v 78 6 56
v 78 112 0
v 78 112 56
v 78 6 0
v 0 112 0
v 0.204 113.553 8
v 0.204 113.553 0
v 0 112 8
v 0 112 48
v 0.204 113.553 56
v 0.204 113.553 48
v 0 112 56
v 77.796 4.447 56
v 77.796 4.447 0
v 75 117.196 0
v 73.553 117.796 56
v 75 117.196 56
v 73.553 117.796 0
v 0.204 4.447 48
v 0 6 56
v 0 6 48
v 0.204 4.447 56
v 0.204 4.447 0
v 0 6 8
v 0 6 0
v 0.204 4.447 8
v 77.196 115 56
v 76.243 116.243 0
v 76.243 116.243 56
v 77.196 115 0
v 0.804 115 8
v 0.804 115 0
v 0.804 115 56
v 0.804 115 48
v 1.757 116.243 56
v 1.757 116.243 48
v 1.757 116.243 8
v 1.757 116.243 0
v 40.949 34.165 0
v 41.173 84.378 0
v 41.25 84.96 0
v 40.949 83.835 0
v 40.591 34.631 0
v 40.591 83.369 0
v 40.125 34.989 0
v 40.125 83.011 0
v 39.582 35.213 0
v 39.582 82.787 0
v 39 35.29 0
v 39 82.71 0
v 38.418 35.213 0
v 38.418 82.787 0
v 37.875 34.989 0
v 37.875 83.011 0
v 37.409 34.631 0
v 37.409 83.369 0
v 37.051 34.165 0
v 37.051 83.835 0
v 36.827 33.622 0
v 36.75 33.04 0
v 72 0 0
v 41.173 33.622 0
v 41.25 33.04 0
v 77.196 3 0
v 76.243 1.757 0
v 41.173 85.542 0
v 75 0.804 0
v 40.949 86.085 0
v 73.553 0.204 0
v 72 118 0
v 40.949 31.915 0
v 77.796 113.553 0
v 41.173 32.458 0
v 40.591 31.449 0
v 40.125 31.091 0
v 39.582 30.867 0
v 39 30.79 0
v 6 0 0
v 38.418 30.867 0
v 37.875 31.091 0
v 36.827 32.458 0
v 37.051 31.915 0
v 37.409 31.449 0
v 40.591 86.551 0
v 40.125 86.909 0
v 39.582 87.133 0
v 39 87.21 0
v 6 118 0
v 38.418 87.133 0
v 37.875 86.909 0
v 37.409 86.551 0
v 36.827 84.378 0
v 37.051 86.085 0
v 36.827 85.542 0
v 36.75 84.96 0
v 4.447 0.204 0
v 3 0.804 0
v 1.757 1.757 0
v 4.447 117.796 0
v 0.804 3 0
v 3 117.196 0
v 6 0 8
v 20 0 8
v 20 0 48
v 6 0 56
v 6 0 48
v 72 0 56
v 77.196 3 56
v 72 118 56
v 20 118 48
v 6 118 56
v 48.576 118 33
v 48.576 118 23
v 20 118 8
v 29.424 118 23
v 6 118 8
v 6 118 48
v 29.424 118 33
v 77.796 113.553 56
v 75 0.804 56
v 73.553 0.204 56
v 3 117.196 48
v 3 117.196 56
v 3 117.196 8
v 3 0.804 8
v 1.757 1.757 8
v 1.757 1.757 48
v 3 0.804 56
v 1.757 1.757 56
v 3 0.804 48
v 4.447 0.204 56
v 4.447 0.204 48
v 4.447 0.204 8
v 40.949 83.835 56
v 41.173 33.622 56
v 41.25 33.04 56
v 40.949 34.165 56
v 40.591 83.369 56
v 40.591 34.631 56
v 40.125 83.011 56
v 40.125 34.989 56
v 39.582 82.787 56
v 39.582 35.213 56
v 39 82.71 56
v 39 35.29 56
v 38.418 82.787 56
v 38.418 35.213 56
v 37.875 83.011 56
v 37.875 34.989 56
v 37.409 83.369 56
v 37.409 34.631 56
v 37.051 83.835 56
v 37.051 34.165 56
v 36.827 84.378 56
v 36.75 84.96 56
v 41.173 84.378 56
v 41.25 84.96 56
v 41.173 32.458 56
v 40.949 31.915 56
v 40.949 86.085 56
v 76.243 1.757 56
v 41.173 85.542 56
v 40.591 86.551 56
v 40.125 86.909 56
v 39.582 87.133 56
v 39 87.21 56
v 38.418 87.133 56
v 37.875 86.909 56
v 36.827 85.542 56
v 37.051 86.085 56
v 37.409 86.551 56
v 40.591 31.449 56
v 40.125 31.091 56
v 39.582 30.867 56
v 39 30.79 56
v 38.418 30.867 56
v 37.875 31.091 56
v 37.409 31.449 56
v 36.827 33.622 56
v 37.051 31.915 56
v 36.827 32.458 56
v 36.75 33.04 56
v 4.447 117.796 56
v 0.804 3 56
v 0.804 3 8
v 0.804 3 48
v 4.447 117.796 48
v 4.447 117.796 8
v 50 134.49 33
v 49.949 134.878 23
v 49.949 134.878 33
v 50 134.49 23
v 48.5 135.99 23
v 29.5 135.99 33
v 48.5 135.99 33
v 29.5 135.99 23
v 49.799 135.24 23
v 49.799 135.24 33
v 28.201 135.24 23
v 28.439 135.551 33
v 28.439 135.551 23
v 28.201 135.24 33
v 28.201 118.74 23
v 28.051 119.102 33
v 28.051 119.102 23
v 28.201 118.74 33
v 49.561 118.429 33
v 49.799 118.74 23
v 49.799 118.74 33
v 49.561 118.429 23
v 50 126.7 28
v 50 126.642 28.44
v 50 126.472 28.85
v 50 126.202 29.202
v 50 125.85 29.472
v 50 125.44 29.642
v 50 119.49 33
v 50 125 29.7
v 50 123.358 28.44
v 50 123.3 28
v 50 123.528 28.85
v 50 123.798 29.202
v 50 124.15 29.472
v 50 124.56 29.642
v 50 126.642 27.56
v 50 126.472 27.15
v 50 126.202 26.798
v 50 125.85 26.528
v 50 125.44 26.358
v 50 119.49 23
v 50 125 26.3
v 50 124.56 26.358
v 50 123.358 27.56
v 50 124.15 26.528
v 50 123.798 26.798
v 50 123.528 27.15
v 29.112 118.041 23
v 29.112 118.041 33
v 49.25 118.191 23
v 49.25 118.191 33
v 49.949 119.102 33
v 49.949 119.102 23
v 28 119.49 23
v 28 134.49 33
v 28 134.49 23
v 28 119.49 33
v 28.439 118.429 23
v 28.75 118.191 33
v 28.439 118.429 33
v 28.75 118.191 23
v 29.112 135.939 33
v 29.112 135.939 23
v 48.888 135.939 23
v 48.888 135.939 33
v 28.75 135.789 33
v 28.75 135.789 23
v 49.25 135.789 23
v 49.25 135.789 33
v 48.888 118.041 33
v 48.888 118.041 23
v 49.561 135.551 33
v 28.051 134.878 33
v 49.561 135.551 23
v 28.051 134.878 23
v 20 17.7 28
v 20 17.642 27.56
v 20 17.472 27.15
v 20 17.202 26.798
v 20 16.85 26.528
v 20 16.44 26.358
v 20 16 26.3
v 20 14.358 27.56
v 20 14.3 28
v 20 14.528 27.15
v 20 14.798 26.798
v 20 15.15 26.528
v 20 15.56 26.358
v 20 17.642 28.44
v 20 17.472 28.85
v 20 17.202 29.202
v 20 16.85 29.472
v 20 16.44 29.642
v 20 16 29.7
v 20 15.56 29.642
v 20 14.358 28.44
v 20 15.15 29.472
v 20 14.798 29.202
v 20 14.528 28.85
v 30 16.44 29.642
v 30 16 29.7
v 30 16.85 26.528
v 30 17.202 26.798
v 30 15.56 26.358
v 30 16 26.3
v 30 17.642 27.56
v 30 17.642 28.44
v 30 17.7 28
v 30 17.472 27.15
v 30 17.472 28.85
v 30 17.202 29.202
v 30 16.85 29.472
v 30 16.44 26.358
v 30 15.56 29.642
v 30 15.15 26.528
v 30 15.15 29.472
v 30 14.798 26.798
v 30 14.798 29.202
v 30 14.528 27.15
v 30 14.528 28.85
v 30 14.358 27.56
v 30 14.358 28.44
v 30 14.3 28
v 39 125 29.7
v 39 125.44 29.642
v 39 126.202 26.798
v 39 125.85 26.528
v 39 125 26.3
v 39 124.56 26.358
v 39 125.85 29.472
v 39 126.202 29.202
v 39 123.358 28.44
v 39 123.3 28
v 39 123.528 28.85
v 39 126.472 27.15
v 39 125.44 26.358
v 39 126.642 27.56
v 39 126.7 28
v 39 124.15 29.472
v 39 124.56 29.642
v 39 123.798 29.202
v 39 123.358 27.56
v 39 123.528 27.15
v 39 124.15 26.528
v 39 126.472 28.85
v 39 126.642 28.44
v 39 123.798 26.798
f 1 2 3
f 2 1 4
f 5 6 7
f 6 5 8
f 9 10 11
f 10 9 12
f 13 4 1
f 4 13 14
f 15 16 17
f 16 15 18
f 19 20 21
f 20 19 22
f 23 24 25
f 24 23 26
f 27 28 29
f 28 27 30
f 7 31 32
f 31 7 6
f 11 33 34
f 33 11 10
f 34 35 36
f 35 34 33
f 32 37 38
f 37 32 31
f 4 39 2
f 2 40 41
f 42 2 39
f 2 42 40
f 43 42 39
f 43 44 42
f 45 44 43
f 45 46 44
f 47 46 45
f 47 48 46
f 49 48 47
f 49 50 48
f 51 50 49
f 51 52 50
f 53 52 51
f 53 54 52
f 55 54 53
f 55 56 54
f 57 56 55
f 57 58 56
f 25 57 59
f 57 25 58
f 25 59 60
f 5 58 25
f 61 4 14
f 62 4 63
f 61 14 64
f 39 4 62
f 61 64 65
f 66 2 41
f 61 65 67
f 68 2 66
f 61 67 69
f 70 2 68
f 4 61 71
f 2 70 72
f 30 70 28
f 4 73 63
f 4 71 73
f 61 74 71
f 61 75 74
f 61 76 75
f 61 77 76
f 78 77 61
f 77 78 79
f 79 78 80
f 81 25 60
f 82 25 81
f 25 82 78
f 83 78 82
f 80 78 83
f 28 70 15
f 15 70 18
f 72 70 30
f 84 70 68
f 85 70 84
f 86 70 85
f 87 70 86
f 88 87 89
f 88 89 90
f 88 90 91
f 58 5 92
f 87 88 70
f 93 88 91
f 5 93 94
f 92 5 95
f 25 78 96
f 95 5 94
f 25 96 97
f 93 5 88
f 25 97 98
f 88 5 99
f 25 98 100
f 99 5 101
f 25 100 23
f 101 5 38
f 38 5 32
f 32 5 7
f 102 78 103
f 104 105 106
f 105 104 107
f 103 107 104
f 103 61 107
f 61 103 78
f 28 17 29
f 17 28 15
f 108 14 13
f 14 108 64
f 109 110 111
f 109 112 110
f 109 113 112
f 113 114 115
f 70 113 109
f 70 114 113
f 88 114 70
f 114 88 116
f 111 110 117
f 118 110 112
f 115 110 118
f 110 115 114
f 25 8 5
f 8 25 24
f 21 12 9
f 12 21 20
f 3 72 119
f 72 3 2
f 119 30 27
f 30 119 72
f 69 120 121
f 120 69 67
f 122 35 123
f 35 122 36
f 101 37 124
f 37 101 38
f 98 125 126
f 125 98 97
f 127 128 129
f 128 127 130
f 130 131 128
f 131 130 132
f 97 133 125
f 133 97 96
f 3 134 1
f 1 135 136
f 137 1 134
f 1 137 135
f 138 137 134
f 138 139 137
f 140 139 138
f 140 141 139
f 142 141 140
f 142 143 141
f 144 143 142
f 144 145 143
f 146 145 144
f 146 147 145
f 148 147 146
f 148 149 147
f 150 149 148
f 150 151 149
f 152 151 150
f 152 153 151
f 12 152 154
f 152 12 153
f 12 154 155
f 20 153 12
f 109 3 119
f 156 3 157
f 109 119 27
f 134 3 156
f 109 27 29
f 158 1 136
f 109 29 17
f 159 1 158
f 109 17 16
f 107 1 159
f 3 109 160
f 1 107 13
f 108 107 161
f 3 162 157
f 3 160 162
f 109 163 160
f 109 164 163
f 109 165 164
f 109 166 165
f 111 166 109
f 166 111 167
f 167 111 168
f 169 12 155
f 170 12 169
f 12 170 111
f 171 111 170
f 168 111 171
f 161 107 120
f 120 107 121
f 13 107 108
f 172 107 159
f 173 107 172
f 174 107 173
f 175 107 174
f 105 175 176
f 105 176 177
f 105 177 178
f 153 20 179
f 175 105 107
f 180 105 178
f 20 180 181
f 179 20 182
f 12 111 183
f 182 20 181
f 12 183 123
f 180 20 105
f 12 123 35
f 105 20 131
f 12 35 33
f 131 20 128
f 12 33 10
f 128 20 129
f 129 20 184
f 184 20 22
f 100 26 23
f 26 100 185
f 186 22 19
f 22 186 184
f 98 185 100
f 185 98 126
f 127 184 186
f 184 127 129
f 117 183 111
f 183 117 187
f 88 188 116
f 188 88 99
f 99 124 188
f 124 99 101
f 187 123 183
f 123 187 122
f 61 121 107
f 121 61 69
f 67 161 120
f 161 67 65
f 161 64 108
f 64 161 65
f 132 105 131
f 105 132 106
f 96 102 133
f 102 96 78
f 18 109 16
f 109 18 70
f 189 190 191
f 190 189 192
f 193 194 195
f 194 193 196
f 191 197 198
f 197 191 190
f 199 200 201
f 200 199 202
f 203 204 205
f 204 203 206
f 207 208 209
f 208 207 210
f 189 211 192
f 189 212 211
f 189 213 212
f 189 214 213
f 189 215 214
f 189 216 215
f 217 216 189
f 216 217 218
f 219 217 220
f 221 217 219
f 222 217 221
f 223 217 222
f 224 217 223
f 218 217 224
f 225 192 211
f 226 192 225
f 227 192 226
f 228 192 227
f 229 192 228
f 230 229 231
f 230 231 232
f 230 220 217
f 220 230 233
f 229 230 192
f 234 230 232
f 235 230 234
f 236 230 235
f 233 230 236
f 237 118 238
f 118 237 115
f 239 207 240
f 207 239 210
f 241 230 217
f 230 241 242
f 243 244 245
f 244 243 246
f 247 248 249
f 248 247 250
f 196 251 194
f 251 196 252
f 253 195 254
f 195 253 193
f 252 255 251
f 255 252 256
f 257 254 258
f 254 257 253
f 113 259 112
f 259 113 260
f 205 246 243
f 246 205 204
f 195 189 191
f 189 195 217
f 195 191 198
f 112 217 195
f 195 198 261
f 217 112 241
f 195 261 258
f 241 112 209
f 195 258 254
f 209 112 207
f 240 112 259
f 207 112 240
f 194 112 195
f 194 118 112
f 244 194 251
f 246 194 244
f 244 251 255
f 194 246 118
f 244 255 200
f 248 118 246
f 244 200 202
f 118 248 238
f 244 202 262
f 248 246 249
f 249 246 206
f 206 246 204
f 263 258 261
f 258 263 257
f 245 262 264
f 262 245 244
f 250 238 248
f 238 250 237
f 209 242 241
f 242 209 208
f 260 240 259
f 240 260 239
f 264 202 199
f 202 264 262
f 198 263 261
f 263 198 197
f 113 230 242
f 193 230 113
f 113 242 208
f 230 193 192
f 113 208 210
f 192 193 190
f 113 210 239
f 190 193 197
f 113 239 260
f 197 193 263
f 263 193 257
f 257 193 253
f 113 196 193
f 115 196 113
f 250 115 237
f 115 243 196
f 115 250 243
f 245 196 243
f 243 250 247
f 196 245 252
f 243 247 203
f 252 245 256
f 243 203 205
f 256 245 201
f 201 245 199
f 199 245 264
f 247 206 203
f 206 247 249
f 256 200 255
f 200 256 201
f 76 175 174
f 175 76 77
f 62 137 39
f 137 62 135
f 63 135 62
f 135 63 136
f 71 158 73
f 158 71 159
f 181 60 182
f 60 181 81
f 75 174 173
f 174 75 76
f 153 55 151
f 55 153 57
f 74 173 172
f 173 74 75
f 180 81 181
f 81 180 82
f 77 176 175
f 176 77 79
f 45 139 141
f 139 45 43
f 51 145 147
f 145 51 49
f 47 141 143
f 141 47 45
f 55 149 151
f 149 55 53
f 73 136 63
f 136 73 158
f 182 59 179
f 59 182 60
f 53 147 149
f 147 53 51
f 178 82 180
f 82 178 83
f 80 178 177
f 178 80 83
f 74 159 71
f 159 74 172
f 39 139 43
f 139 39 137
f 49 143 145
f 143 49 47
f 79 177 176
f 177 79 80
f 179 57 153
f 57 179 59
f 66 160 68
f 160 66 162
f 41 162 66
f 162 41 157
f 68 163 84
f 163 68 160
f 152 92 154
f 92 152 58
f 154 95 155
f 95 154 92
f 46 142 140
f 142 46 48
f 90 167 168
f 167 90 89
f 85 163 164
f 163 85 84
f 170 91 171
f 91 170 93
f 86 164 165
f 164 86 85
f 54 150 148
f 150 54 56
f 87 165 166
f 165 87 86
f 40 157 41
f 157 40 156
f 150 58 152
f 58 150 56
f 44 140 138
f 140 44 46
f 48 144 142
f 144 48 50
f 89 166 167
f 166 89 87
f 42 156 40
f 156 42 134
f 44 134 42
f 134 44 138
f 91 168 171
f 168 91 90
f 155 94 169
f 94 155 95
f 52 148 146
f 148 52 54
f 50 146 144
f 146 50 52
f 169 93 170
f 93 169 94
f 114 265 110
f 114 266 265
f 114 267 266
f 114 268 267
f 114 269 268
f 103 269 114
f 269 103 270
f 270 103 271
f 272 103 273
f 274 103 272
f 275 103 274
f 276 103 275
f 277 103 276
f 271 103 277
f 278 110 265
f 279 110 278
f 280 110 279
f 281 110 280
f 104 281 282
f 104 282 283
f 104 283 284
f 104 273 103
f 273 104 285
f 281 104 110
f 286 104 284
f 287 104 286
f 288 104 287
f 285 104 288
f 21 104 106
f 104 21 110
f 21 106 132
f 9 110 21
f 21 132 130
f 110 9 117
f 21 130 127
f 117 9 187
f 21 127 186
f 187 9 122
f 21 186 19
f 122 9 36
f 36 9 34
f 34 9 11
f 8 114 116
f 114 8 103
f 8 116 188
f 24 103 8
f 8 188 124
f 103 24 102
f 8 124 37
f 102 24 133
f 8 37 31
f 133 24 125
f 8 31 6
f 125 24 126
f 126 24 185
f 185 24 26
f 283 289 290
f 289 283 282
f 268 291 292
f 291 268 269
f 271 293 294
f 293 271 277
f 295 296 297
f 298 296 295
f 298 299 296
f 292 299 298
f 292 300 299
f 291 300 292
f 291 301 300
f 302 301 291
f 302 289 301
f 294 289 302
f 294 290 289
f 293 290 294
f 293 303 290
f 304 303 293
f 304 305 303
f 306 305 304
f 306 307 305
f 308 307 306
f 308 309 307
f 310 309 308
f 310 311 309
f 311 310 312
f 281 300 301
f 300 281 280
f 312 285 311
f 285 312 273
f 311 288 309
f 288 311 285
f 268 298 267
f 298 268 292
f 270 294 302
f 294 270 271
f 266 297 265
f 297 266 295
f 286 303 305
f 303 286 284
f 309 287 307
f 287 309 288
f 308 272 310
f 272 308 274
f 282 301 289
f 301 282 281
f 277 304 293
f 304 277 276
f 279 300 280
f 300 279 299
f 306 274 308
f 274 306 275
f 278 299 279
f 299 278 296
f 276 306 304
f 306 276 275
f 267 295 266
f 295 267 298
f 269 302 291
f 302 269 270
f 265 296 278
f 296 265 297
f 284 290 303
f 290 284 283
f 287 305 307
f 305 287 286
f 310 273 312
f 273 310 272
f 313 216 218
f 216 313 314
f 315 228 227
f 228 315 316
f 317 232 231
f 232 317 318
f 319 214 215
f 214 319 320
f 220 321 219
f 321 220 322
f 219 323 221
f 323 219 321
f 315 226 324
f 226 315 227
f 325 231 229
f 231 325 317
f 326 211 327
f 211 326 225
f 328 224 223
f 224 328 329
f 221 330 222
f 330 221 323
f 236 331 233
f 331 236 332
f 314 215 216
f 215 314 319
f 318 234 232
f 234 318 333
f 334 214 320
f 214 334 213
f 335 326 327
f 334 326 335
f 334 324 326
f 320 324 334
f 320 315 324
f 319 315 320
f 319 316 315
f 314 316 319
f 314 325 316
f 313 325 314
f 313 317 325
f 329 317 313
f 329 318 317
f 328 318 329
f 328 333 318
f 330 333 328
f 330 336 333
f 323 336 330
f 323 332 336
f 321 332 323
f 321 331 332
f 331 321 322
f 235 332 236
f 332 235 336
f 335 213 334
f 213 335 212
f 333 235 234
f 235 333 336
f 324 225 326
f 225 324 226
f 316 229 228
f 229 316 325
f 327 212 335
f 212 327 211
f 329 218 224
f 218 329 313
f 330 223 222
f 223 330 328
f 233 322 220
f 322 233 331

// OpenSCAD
// file: 00_parameters.scad
// TenderCells DoorCell V1 shared parameters
// Units: millimeters

overall_w = 438;
overall_h = 368;
frame_depth = 56;

clear_w = 242;
clear_h = 312;

rail_thick = 32;
jamb_w = 48;
motor_jamb_w = 78;

// Printability targets
target_bed_xy = 220;
comfortable_part_max = 180;

// Modular frame split dimensions
top_seg_len = overall_w / 3;
bottom_seg_len = overall_w / 3;
left_jamb_seg_h = overall_h / 2;
right_lower_h = 118;
right_motor_h = 156;
right_upper_h = overall_h - right_lower_h - right_motor_h;

// Low-cost electronics envelope used by DoorCell V1.4.
// These dimensions are based on common generic modules, not a custom PCB.
esp32_board = [58, 31, 8];
drv8871_board = [31, 26, 7];
current_sensor_board = [26, 22, 7];
lm2596_board = [44, 22, 14];
inline_fuse_body = [45, 15, 14];
cn3065_board = [44, 24, 8];
electronics_clearance = 1.5;
controller_wall = 3;
controller_box_w = 170;
controller_box_h = 115;
controller_box_d = 46;
controller_lid_insert_offset = 11;
controller_m12_gland_d = 12.8;
controller_m10_gland_d = 10.6;
controller_m8_gland_d = 8.4;
controller_button_d = 16.2;

// Brass heat-set/push-in insert features.
insert_post_d = 8.0;
insert_post_h = 8.0;
insert_pilot_d = 4.6;
insert_pilot_depth = 6.5;
hold_down_screw_clearance = 3.4;

// Motor envelope for common 25GA/JGA25-370 gearmotors with optional encoder.
motor_body_d = 25.0;
motor_body_clearance_d = 27.2;
motor_body_len = 65;
motor_encoder_clearance = 16;
motor_mount_plate = [72, 92, 12];
motor_mount_cradle = [54, 74, 28];

// Optional solar add-on.
solar_panel_w = 145;
solar_panel_h = 145;
solar_panel_t = 4.0;
solar_panel_frame_border = 10;
solar_panel_frame_w = solar_panel_w + 2*solar_panel_frame_border;
solar_panel_frame_h = solar_panel_h + 2*solar_panel_frame_border;
solar_panel_back_depth = 14;
solar_panel_lip_overlap = 3;
solar_ball_d = 22;
solar_ball_socket_clearance = 0.45;
solar_mount_m5 = 5.4;

// Tongue-and-groove frame joints
// Fit target: common FDM printers with PETG/ASA.
// Clearance is per side, so sockets add 2x this value.
tongue_len = 18;
tongue_w = 22;
tongue_z = 10;
tongue_clearance_side = 0.25;
tongue_socket_depth_extra = 0.60;

door_w = 270;
door_h = 326;
door_t = 8;

track_gap = 11;
track_depth = 12;

// Rack-and-pinion drive
// Metric module gear math:
// circular_pitch = PI * module
// pitch_diameter = module * tooth_count
// outside_diameter = module * (tooth_count + 2)
// root_diameter = module * (tooth_count - 2.5)
gear_module = 2.0;
pressure_angle = 20;
gear_backlash = 0.20; // mm removed from rack tooth thickness at pitch line

pinion_teeth = 16;
pinion_pitch_d = gear_module * pinion_teeth;
pinion_pitch_radius = pinion_pitch_d / 2;
pinion_outer_d = gear_module * (pinion_teeth + 2);
pinion_outer_radius = pinion_outer_d / 2;
pinion_root_d = gear_module * (pinion_teeth - 2.5);
pinion_root_radius = pinion_root_d / 2;
pinion_thick = 12;
shaft_d = 6.2;

rack_tooth_count = 15;
rack_circular_pitch = 3.141592653589793 * gear_module;
rack_len = rack_circular_pitch * rack_tooth_count;
rack_w = 18;
rack_t = 6;
rack_addendum = gear_module;
rack_dedendum = 1.25 * gear_module;
rack_tooth_h = rack_addendum + rack_dedendum;
rack_pitch_line_z = rack_dedendum;
rack_tooth_pitch_thickness = rack_circular_pitch / 2 - gear_backlash;
rack_tooth_top_w = rack_tooth_pitch_thickness - 2 * rack_addendum * tan(pressure_angle);
rack_tooth_root_w = rack_tooth_pitch_thickness + 2 * rack_dedendum * tan(pressure_angle);

screw_m3 = 3.4;
screw_m4 = 4.5;
insert_m3 = 4.6;

eps = 0.01;

module rounded_box(size=[10,10,10], r=2) {
  hull() {
    translate([r,r,0]) cylinder(h=size[2], r=r, $fn=24);
    translate([size[0]-r,r,0]) cylinder(h=size[2], r=r, $fn=24);
    translate([r,size[1]-r,0]) cylinder(h=size[2], r=r, $fn=24);
    translate([size[0]-r,size[1]-r,0]) cylinder(h=size[2], r=r, $fn=24);
  }
}

module m3_clearance_hole(h=20) {
  cylinder(h=h, d=screw_m3, $fn=24);
}

module m4_clearance_hole(h=20) {
  cylinder(h=h, d=screw_m4, $fn=24);
}

module heat_insert_hole(h=6) {
  cylinder(h=h, d=insert_m3, $fn=24);
}

module heat_insert_post(h=insert_post_h, d=insert_post_d) {
  difference() {
    cylinder(h=h, d=d, $fn=32);
    translate([0,0,h-insert_pilot_depth+eps])
      cylinder(h=insert_pilot_depth+eps, d=insert_pilot_d, $fn=24);
  }
}

module m3_hold_down_slot(length=10, h=4) {
  hull() {
    translate([-length/2,0,0]) cylinder(h=h, d=hold_down_screw_clearance, $fn=20);
    translate([ length/2,0,0]) cylinder(h=h, d=hold_down_screw_clearance, $fn=20);
  }
}

module rail_channel(length=100) {
  cube([length, track_gap, track_depth]);
}

module frame_tongue_x() {
  rounded_box([tongue_len, tongue_w, tongue_z], r=1.5);
}

module frame_socket_x() {
  cube([
    tongue_len + tongue_socket_depth_extra,
    tongue_w + 2*tongue_clearance_side,
    tongue_z + 2*tongue_clearance_side
  ]);
}

module frame_tongue_y() {
  rounded_box([tongue_w, tongue_len, tongue_z], r=1.5);
}

module frame_socket_y() {
  cube([
    tongue_w + 2*tongue_clearance_side,
    tongue_len + tongue_socket_depth_extra,
    tongue_z + 2*tongue_clearance_side
  ]);
}

module rack_teeth(len=rack_len) {
  teeth = floor(len / rack_circular_pitch);
  for (i=[0:teeth-1]) {
    center = i*rack_circular_pitch + rack_circular_pitch/2;
    translate([0, 0, rack_t-0.20])
      linear_extrude(height=rack_w)
        polygon(points=[
          [center - rack_tooth_root_w/2, 0],
          [center + rack_tooth_root_w/2, 0],
          [center + rack_tooth_top_w/2, rack_tooth_h],
          [center - rack_tooth_top_w/2, rack_tooth_h]
        ]);
  }
}

function polar_point(r, a) = [r * cos(a), r * sin(a)];
// file: frame_modular_common.scad
include <00_parameters.scad>

module horizontal_frame_segment(seg_len=top_seg_len, rail_kind="top", joint_left="socket", joint_right="tongue") {
  difference() {
    union() {
      rounded_box([seg_len, rail_thick, frame_depth], r=6);

      if (joint_right == "tongue") {
        translate([seg_len - eps, rail_thick/2 - tongue_w/2, frame_depth/2 - tongue_z/2])
          frame_tongue_x();
      }
    }

    // Tongue receiver from previous segment.
    if (joint_left == "socket") {
      translate([
        -eps,
        rail_thick/2 - (tongue_w + 2*tongue_clearance_side)/2,
        frame_depth/2 - (tongue_z + 2*tongue_clearance_side)/2
      ])
        frame_socket_x();
    }

    // Sliding door guide channel.
    if (rail_kind == "top") {
      translate([8, rail_thick-track_gap-5, 8])
        rail_channel(length=seg_len-16);
    } else {
      translate([8, 5, frame_depth-track_depth-8])
        rail_channel(length=seg_len-16);

      // Drain slots for bottom rail.
      for (x=[seg_len*0.25, seg_len*0.5, seg_len*0.75]) {
        translate([x-10, rail_thick/2-2, frame_depth-4])
          cube([20, 4, 10]);
      }
    }

    // Coop mounting holes.
    for (x=[18, seg_len-18]) {
      translate([x, rail_thick/2, -eps])
        m4_clearance_hole(h=frame_depth+2);
    }

    // Cross-bolt holes near frame split joints.
    if (joint_left == "socket") {
      translate([tongue_len/2, rail_thick/2, frame_depth/2])
        rotate([90,0,0]) m3_clearance_hole(h=rail_thick+2);
    }
    if (joint_right == "tongue") {
      translate([seg_len + tongue_len/2 - 2, rail_thick/2, frame_depth/2])
        rotate([90,0,0]) m3_clearance_hole(h=rail_thick+2);
    }
  }
}

module left_jamb_segment(seg_h=left_jamb_seg_h, joint_bottom="socket", joint_top="tongue", corner_bottom=false, corner_top=false) {
  difference() {
    union() {
      rounded_box([jamb_w, seg_h, frame_depth], r=6);

      if (joint_top == "tongue") {
        translate([jamb_w/2 - tongue_w/2, seg_h - eps, frame_depth/2 - tongue_z/2])
          frame_tongue_y();
      }
    }

    if (joint_bottom == "socket") {
      translate([
        jamb_w/2 - (tongue_w + 2*tongue_clearance_side)/2,
        -eps,
        frame_depth/2 - (tongue_z + 2*tongue_clearance_side)/2
      ])
        frame_socket_y();
    }

    // Door pocket relief.
    translate([jamb_w-18, 0, 8])
      cube([16, seg_h, frame_depth-16]);

    // Coop mounting holes.
    for (y=[seg_h*0.28, seg_h*0.72]) {
      translate([jamb_w/2, y, -eps]) m4_clearance_hole(h=frame_depth+2);
    }

    // Rail-to-jamb corner holes.
    if (corner_bottom) {
      translate([jamb_w-10, 16, frame_depth/2])
        rotate([0,90,0]) m3_clearance_hole(h=20);
    }
    if (corner_top) {
      translate([jamb_w-10, seg_h-16, frame_depth/2])
        rotate([0,90,0]) m3_clearance_hole(h=20);
    }

    // Cross-bolt through tongue-and-groove.
    if (joint_bottom == "socket") {
      translate([jamb_w/2, tongue_len/2, frame_depth/2])
        rotate([0,90,0]) m3_clearance_hole(h=jamb_w+2);
    }
    if (joint_top == "tongue") {
      translate([jamb_w/2, seg_h + tongue_len/2 - 2, frame_depth/2])
        rotate([0,90,0]) m3_clearance_hole(h=jamb_w+2);
    }
  }
}

module right_jamb_segment(seg_h=120, has_motor_bay=false, joint_bottom="socket", joint_top="tongue", corner_bottom=false, corner_top=false) {
  difference() {
    union() {
      rounded_box([motor_jamb_w, seg_h, frame_depth], r=6);

      if (has_motor_bay) {
        translate([motor_jamb_w-8, 20, 0])
          rounded_box([70, seg_h-32, frame_depth], r=5);
      }

      if (joint_top == "tongue") {
        translate([motor_jamb_w/2 - tongue_w/2, seg_h - eps, frame_depth/2 - tongue_z/2])
          frame_tongue_y();
      }
    }

    if (joint_bottom == "socket") {
      translate([
        motor_jamb_w/2 - (tongue_w + 2*tongue_clearance_side)/2,
        -eps,
        frame_depth/2 - (tongue_z + 2*tongue_clearance_side)/2
      ])
        frame_socket_y();
    }

    // Door pocket relief.
    translate([0, 0, 8])
      cube([20, seg_h, frame_depth-16]);

    if (has_motor_bay) {
      // Motor cassette pocket sized for the revised 25GA mount.
      translate([motor_jamb_w+5, 33, 8])
        cube([62, 92, 40]);

      // Pinion/rack engagement window.
      translate([4, 68, 16])
        cube([46, 36, 24]);

      // Motor/control harness pass-through for M12-style cable gland routing.
      translate([motor_jamb_w+26, seg_h-42, 16])
        cube([24, 34, 26]);

      // Limit switch lead pass-throughs.
      translate([motor_jamb_w-2, 18, 18])
        cube([16, 18, 16]);
      translate([motor_jamb_w-2, seg_h-36, 18])
        cube([16, 18, 16]);
    }

    // Coop mounting holes.
    for (y=[seg_h*0.28, seg_h*0.72]) {
      translate([motor_jamb_w/2, y, -eps]) m4_clearance_hole(h=frame_depth+2);
    }

    // Rail-to-jamb corner holes.
    if (corner_bottom) {
      translate([10, 16, frame_depth/2])
        rotate([0,90,0]) m3_clearance_hole(h=20);
    }
    if (corner_top) {
      translate([10, seg_h-16, frame_depth/2])
        rotate([0,90,0]) m3_clearance_hole(h=20);
    }

    // Cross-bolt through tongue-and-groove.
    if (joint_bottom == "socket") {
      translate([motor_jamb_w/2, tongue_len/2, frame_depth/2])
        rotate([0,90,0]) m3_clearance_hole(h=motor_jamb_w+2);
    }
    if (joint_top == "tongue") {
      translate([motor_jamb_w/2, seg_h + tongue_len/2 - 2, frame_depth/2])
        rotate([0,90,0]) m3_clearance_hole(h=motor_jamb_w+2);
    }
  }
}
// main file
include <frame_modular_common.scad>

right_jamb_segment(seg_h=right_lower_h, has_motor_bay=false, joint_bottom="none", joint_top="tongue", corner_bottom=true, corner_top=false);
